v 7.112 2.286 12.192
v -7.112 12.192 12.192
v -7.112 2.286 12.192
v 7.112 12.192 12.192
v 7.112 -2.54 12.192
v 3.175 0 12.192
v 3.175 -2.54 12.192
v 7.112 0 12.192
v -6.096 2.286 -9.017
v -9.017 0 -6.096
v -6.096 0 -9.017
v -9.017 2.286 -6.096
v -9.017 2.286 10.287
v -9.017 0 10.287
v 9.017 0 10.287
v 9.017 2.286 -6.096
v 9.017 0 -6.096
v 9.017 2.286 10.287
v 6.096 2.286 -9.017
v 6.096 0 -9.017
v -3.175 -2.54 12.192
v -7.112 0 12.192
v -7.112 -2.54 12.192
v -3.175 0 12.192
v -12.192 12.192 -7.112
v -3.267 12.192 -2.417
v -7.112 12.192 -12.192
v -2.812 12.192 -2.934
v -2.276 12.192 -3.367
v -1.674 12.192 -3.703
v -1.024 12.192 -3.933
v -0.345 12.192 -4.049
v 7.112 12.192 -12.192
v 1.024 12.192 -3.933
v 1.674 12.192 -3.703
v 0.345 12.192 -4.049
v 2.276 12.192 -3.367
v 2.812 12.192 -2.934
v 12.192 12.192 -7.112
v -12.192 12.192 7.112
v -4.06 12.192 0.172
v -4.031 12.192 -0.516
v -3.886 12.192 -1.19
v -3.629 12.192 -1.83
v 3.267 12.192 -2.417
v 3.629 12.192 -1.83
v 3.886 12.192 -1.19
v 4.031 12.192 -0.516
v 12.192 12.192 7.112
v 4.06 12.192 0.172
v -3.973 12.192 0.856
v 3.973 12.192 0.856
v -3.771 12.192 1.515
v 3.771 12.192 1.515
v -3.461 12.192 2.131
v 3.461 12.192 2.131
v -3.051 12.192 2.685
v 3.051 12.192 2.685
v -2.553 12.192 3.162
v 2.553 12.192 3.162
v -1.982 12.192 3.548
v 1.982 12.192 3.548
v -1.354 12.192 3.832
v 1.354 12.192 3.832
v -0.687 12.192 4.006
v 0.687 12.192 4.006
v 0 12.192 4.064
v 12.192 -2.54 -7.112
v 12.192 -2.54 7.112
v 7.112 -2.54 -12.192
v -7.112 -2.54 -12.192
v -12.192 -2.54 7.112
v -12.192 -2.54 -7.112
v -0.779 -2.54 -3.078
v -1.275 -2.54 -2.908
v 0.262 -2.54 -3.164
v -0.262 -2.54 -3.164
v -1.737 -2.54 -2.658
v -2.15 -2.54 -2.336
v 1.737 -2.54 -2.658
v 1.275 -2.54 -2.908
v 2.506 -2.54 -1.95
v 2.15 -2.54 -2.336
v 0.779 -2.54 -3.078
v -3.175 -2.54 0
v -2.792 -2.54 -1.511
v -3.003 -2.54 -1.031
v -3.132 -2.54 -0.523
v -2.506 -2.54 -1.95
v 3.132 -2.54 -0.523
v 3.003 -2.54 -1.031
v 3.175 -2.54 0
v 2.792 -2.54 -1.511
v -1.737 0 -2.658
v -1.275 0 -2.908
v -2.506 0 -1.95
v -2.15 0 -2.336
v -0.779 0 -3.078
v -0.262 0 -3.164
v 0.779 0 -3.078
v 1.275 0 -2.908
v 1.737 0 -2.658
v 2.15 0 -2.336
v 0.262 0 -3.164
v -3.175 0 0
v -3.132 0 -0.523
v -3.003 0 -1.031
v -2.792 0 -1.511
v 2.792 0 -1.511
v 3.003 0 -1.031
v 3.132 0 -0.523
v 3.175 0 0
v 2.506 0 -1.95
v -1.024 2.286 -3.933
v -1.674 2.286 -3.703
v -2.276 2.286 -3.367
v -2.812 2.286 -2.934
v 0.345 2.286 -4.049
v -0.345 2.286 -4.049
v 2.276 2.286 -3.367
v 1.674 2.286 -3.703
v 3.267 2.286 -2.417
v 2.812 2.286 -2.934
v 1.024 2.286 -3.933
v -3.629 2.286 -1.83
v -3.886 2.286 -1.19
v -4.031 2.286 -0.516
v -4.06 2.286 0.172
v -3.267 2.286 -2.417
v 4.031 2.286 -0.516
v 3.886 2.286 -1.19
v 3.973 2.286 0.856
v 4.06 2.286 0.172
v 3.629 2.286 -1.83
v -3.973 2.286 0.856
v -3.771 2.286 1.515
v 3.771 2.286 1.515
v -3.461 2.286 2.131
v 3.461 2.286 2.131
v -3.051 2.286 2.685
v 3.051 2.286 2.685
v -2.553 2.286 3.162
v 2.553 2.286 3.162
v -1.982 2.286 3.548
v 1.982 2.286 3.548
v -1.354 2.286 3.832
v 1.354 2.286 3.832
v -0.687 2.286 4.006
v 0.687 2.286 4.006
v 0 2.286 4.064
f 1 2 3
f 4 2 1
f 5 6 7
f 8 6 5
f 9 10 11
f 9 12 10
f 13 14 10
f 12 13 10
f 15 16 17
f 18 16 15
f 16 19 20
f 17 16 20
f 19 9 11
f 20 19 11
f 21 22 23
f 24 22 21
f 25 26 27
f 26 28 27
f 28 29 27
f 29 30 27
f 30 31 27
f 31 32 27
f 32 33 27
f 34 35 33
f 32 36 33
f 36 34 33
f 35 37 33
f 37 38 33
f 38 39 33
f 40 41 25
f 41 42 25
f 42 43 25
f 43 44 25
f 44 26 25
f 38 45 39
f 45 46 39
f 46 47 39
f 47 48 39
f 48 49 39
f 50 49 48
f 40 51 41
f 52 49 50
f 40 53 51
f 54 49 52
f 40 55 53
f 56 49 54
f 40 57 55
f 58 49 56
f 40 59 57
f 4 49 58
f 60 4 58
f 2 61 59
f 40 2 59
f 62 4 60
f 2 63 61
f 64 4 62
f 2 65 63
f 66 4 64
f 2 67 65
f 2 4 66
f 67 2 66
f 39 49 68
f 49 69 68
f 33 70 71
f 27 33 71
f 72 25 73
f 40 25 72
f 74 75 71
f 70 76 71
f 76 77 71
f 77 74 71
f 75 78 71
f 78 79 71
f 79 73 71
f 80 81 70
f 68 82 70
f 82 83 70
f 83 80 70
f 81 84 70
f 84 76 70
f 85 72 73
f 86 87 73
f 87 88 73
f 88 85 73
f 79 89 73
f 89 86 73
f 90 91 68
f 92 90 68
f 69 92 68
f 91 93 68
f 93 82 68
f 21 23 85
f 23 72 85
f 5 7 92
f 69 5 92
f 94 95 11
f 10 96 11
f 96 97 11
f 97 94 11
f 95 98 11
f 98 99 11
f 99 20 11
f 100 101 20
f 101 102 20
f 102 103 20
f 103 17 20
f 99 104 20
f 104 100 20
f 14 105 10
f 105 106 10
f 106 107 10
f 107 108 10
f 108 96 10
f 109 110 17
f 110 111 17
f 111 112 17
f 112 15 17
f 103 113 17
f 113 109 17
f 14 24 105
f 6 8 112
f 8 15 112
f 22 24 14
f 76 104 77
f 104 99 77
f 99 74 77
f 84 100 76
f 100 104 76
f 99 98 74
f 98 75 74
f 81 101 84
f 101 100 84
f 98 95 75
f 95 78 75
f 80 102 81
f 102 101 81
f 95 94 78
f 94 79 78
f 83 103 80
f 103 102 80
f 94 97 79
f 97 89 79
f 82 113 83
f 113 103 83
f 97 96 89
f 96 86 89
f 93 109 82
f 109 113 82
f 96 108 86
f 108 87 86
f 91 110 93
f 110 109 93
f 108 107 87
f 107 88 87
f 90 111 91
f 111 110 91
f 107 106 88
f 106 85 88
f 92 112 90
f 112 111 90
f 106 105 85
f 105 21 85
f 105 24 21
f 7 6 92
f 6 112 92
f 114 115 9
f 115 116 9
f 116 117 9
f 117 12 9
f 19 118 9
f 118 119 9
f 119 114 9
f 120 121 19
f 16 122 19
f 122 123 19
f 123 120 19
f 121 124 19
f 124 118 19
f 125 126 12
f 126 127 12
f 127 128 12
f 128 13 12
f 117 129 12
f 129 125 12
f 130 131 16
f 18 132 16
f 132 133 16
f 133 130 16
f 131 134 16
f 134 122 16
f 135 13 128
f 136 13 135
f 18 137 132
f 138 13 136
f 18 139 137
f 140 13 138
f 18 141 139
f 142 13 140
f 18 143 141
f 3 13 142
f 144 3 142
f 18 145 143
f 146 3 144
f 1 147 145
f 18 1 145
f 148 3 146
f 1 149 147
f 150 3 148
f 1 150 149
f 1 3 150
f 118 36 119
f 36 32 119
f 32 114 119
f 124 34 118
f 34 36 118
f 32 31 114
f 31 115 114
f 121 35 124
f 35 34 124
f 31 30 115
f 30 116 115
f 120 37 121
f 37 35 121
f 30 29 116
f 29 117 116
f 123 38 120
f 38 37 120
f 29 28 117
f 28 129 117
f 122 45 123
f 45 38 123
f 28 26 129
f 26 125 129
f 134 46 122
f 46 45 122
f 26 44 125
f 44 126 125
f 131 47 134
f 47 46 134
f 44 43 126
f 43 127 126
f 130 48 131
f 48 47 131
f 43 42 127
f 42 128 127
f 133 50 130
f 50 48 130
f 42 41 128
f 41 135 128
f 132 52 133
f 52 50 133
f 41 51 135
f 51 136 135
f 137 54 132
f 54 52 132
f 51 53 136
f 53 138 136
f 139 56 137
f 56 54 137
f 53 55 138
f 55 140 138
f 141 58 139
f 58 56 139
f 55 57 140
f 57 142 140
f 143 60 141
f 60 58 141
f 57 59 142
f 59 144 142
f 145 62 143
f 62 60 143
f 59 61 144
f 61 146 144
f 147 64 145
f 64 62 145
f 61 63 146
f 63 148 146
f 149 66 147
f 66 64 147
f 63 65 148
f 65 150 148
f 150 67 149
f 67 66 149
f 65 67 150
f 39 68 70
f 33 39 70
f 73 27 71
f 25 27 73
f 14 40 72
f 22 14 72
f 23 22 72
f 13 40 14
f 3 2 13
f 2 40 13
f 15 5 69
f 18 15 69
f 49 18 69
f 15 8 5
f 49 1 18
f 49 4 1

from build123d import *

# Parameters (mm, degrees)
SKETCH1_W           = 24.384
SKETCH1_H           = 24.384
BOSS_EXTRUDE1_DEPTH = 12.192
SKETCH2_W           = 24.384
SKETCH2_H           = 24.384
SKETCH2_R           = 3.175
BOSS_EXTRUDE2_DEPTH = 2.54
SKETCH3_W           = 6.35
SKETCH3_H           = 12.192
CUT_EXTRUDE1_DEPTH  = 2.54
CUT_EXTRUDE2_DEPTH  = 2.286
SKETCH5_W           = 24.384
SKETCH5_H           = 24.384
SKETCH5_R           = 4.064
BOSS_EXTRUDE3_DEPTH = 9.906
CHAMFER1_SIZE       = 5.08


with BuildPart() as part:
    # Sketch1 → Boss-Extrude1 (new body)
    with BuildSketch(Plane(origin=(0, 0, 0), x_dir=(1, 0, 0), z_dir=(0, 1, 0))):
        Rectangle(SKETCH1_W, SKETCH1_H)
        Polygon((-6.096, 9.017), (6.096, 9.017), (9.017, 6.096), (9.017, -6.096), (6.096, -9.017), (-6.096, -9.017), (-9.017, -6.096), (-9.017, 6.096), align=None, mode=Mode.SUBTRACT)
    extrude(amount=BOSS_EXTRUDE1_DEPTH)

    # Sketch2 → Boss-Extrude2 (add)
    with BuildSketch(Plane.XZ):
        Rectangle(SKETCH2_W, SKETCH2_H)
        with Locations(Location((0, 0, 0), (0, 0, 270))):
            Circle(SKETCH2_R, mode=Mode.SUBTRACT)
    extrude(amount=BOSS_EXTRUDE2_DEPTH)

    # Sketch3 → Cut-Extrude1 (cut)
    with BuildSketch(Plane.XZ.offset(2.54)):
        with Locations((0, 6.096)):
            Rectangle(SKETCH3_W, SKETCH3_H)
    extrude(amount=-CUT_EXTRUDE1_DEPTH, mode=Mode.SUBTRACT)

    # Sketch4 → Cut-Extrude2 (cut)
    with BuildSketch(Plane(origin=(0, 0, 0), x_dir=(1, 0, 0), z_dir=(0, 1, 0))):
        Polygon((-3.175, -6.096), (-9.017, -6.096), (-6.096, -9.017), (-3.175, -9.017), align=None)
        Polygon((-6.096, -9.017), (-9.017, -6.096), (-9.017, -12.192), (9.017, -12.192), (9.017, -6.096), (6.096, -9.017), (3.175, -9.017), (3.175, -6.096), (-3.175, -6.096), (-3.175, -9.017), align=None)
        Polygon((9.017, -6.096), (3.175, -6.096), (3.175, -9.017), (6.096, -9.017), align=None)
    extrude(amount=CUT_EXTRUDE2_DEPTH, mode=Mode.SUBTRACT)

    # Sketch5 → Boss-Extrude3 (add)
    with BuildSketch(Plane(origin=(0, 12.192, 0), x_dir=(1, 0, 0), z_dir=(0, 1, 0))):
        Rectangle(SKETCH5_W, SKETCH5_H)
        with Locations(Location((0, 0, 0), (0, 0, 270))):
            Circle(SKETCH5_R, mode=Mode.SUBTRACT)
    extrude(amount=-BOSS_EXTRUDE3_DEPTH)

    # Chamfer1
    # the kernel refuses this chamfer: 5.08 mm, written as the material it takes off along each edge
    with BuildSketch(Plane(origin=(12.192, 25.256149579, -12.192), x_dir=(0.027495876610586254, -5.537865568379339e-15, 0.9996219169112968), z_dir=(0, -1, 0)), Plane(origin=(12.192, -15.604149579, 12.192), x_dir=(0.027495876610586268, 0, -0.9996219169112968), z_dir=(0, 1, 0))) as chamfer1_piece_1:
        Polygon((CHAMFER1_SIZE * 0.999621916911, CHAMFER1_SIZE * 0.0274958766106), (-CHAMFER1_SIZE * 0.0274958766106, CHAMFER1_SIZE * 0.999621916911), (0, 0), align=None)
    extrude(amount=40.860299158, mode=Mode.SUBTRACT)
    with BuildSketch(Plane(origin=(-12.192, 25.256149579, -12.192), x_dir=(-0.027495876610586265, -3.4921279629514554e-15, 0.9996219169112968), z_dir=(0, -1, 0)), Plane(origin=(-12.192, -15.604149579, 12.192), x_dir=(-0.027495876610586275, 0, -0.9996219169112968), z_dir=(0, 1, 0))) as chamfer1_piece_2:
        Polygon((CHAMFER1_SIZE * 0.999621916911, -CHAMFER1_SIZE * 0.0274958766106), (-CHAMFER1_SIZE * 0.0274958766106, -CHAMFER1_SIZE * 0.999621916911), (0, 0), align=None)
    extrude(amount=40.860299158, mode=Mode.SUBTRACT)


solid = part.part
